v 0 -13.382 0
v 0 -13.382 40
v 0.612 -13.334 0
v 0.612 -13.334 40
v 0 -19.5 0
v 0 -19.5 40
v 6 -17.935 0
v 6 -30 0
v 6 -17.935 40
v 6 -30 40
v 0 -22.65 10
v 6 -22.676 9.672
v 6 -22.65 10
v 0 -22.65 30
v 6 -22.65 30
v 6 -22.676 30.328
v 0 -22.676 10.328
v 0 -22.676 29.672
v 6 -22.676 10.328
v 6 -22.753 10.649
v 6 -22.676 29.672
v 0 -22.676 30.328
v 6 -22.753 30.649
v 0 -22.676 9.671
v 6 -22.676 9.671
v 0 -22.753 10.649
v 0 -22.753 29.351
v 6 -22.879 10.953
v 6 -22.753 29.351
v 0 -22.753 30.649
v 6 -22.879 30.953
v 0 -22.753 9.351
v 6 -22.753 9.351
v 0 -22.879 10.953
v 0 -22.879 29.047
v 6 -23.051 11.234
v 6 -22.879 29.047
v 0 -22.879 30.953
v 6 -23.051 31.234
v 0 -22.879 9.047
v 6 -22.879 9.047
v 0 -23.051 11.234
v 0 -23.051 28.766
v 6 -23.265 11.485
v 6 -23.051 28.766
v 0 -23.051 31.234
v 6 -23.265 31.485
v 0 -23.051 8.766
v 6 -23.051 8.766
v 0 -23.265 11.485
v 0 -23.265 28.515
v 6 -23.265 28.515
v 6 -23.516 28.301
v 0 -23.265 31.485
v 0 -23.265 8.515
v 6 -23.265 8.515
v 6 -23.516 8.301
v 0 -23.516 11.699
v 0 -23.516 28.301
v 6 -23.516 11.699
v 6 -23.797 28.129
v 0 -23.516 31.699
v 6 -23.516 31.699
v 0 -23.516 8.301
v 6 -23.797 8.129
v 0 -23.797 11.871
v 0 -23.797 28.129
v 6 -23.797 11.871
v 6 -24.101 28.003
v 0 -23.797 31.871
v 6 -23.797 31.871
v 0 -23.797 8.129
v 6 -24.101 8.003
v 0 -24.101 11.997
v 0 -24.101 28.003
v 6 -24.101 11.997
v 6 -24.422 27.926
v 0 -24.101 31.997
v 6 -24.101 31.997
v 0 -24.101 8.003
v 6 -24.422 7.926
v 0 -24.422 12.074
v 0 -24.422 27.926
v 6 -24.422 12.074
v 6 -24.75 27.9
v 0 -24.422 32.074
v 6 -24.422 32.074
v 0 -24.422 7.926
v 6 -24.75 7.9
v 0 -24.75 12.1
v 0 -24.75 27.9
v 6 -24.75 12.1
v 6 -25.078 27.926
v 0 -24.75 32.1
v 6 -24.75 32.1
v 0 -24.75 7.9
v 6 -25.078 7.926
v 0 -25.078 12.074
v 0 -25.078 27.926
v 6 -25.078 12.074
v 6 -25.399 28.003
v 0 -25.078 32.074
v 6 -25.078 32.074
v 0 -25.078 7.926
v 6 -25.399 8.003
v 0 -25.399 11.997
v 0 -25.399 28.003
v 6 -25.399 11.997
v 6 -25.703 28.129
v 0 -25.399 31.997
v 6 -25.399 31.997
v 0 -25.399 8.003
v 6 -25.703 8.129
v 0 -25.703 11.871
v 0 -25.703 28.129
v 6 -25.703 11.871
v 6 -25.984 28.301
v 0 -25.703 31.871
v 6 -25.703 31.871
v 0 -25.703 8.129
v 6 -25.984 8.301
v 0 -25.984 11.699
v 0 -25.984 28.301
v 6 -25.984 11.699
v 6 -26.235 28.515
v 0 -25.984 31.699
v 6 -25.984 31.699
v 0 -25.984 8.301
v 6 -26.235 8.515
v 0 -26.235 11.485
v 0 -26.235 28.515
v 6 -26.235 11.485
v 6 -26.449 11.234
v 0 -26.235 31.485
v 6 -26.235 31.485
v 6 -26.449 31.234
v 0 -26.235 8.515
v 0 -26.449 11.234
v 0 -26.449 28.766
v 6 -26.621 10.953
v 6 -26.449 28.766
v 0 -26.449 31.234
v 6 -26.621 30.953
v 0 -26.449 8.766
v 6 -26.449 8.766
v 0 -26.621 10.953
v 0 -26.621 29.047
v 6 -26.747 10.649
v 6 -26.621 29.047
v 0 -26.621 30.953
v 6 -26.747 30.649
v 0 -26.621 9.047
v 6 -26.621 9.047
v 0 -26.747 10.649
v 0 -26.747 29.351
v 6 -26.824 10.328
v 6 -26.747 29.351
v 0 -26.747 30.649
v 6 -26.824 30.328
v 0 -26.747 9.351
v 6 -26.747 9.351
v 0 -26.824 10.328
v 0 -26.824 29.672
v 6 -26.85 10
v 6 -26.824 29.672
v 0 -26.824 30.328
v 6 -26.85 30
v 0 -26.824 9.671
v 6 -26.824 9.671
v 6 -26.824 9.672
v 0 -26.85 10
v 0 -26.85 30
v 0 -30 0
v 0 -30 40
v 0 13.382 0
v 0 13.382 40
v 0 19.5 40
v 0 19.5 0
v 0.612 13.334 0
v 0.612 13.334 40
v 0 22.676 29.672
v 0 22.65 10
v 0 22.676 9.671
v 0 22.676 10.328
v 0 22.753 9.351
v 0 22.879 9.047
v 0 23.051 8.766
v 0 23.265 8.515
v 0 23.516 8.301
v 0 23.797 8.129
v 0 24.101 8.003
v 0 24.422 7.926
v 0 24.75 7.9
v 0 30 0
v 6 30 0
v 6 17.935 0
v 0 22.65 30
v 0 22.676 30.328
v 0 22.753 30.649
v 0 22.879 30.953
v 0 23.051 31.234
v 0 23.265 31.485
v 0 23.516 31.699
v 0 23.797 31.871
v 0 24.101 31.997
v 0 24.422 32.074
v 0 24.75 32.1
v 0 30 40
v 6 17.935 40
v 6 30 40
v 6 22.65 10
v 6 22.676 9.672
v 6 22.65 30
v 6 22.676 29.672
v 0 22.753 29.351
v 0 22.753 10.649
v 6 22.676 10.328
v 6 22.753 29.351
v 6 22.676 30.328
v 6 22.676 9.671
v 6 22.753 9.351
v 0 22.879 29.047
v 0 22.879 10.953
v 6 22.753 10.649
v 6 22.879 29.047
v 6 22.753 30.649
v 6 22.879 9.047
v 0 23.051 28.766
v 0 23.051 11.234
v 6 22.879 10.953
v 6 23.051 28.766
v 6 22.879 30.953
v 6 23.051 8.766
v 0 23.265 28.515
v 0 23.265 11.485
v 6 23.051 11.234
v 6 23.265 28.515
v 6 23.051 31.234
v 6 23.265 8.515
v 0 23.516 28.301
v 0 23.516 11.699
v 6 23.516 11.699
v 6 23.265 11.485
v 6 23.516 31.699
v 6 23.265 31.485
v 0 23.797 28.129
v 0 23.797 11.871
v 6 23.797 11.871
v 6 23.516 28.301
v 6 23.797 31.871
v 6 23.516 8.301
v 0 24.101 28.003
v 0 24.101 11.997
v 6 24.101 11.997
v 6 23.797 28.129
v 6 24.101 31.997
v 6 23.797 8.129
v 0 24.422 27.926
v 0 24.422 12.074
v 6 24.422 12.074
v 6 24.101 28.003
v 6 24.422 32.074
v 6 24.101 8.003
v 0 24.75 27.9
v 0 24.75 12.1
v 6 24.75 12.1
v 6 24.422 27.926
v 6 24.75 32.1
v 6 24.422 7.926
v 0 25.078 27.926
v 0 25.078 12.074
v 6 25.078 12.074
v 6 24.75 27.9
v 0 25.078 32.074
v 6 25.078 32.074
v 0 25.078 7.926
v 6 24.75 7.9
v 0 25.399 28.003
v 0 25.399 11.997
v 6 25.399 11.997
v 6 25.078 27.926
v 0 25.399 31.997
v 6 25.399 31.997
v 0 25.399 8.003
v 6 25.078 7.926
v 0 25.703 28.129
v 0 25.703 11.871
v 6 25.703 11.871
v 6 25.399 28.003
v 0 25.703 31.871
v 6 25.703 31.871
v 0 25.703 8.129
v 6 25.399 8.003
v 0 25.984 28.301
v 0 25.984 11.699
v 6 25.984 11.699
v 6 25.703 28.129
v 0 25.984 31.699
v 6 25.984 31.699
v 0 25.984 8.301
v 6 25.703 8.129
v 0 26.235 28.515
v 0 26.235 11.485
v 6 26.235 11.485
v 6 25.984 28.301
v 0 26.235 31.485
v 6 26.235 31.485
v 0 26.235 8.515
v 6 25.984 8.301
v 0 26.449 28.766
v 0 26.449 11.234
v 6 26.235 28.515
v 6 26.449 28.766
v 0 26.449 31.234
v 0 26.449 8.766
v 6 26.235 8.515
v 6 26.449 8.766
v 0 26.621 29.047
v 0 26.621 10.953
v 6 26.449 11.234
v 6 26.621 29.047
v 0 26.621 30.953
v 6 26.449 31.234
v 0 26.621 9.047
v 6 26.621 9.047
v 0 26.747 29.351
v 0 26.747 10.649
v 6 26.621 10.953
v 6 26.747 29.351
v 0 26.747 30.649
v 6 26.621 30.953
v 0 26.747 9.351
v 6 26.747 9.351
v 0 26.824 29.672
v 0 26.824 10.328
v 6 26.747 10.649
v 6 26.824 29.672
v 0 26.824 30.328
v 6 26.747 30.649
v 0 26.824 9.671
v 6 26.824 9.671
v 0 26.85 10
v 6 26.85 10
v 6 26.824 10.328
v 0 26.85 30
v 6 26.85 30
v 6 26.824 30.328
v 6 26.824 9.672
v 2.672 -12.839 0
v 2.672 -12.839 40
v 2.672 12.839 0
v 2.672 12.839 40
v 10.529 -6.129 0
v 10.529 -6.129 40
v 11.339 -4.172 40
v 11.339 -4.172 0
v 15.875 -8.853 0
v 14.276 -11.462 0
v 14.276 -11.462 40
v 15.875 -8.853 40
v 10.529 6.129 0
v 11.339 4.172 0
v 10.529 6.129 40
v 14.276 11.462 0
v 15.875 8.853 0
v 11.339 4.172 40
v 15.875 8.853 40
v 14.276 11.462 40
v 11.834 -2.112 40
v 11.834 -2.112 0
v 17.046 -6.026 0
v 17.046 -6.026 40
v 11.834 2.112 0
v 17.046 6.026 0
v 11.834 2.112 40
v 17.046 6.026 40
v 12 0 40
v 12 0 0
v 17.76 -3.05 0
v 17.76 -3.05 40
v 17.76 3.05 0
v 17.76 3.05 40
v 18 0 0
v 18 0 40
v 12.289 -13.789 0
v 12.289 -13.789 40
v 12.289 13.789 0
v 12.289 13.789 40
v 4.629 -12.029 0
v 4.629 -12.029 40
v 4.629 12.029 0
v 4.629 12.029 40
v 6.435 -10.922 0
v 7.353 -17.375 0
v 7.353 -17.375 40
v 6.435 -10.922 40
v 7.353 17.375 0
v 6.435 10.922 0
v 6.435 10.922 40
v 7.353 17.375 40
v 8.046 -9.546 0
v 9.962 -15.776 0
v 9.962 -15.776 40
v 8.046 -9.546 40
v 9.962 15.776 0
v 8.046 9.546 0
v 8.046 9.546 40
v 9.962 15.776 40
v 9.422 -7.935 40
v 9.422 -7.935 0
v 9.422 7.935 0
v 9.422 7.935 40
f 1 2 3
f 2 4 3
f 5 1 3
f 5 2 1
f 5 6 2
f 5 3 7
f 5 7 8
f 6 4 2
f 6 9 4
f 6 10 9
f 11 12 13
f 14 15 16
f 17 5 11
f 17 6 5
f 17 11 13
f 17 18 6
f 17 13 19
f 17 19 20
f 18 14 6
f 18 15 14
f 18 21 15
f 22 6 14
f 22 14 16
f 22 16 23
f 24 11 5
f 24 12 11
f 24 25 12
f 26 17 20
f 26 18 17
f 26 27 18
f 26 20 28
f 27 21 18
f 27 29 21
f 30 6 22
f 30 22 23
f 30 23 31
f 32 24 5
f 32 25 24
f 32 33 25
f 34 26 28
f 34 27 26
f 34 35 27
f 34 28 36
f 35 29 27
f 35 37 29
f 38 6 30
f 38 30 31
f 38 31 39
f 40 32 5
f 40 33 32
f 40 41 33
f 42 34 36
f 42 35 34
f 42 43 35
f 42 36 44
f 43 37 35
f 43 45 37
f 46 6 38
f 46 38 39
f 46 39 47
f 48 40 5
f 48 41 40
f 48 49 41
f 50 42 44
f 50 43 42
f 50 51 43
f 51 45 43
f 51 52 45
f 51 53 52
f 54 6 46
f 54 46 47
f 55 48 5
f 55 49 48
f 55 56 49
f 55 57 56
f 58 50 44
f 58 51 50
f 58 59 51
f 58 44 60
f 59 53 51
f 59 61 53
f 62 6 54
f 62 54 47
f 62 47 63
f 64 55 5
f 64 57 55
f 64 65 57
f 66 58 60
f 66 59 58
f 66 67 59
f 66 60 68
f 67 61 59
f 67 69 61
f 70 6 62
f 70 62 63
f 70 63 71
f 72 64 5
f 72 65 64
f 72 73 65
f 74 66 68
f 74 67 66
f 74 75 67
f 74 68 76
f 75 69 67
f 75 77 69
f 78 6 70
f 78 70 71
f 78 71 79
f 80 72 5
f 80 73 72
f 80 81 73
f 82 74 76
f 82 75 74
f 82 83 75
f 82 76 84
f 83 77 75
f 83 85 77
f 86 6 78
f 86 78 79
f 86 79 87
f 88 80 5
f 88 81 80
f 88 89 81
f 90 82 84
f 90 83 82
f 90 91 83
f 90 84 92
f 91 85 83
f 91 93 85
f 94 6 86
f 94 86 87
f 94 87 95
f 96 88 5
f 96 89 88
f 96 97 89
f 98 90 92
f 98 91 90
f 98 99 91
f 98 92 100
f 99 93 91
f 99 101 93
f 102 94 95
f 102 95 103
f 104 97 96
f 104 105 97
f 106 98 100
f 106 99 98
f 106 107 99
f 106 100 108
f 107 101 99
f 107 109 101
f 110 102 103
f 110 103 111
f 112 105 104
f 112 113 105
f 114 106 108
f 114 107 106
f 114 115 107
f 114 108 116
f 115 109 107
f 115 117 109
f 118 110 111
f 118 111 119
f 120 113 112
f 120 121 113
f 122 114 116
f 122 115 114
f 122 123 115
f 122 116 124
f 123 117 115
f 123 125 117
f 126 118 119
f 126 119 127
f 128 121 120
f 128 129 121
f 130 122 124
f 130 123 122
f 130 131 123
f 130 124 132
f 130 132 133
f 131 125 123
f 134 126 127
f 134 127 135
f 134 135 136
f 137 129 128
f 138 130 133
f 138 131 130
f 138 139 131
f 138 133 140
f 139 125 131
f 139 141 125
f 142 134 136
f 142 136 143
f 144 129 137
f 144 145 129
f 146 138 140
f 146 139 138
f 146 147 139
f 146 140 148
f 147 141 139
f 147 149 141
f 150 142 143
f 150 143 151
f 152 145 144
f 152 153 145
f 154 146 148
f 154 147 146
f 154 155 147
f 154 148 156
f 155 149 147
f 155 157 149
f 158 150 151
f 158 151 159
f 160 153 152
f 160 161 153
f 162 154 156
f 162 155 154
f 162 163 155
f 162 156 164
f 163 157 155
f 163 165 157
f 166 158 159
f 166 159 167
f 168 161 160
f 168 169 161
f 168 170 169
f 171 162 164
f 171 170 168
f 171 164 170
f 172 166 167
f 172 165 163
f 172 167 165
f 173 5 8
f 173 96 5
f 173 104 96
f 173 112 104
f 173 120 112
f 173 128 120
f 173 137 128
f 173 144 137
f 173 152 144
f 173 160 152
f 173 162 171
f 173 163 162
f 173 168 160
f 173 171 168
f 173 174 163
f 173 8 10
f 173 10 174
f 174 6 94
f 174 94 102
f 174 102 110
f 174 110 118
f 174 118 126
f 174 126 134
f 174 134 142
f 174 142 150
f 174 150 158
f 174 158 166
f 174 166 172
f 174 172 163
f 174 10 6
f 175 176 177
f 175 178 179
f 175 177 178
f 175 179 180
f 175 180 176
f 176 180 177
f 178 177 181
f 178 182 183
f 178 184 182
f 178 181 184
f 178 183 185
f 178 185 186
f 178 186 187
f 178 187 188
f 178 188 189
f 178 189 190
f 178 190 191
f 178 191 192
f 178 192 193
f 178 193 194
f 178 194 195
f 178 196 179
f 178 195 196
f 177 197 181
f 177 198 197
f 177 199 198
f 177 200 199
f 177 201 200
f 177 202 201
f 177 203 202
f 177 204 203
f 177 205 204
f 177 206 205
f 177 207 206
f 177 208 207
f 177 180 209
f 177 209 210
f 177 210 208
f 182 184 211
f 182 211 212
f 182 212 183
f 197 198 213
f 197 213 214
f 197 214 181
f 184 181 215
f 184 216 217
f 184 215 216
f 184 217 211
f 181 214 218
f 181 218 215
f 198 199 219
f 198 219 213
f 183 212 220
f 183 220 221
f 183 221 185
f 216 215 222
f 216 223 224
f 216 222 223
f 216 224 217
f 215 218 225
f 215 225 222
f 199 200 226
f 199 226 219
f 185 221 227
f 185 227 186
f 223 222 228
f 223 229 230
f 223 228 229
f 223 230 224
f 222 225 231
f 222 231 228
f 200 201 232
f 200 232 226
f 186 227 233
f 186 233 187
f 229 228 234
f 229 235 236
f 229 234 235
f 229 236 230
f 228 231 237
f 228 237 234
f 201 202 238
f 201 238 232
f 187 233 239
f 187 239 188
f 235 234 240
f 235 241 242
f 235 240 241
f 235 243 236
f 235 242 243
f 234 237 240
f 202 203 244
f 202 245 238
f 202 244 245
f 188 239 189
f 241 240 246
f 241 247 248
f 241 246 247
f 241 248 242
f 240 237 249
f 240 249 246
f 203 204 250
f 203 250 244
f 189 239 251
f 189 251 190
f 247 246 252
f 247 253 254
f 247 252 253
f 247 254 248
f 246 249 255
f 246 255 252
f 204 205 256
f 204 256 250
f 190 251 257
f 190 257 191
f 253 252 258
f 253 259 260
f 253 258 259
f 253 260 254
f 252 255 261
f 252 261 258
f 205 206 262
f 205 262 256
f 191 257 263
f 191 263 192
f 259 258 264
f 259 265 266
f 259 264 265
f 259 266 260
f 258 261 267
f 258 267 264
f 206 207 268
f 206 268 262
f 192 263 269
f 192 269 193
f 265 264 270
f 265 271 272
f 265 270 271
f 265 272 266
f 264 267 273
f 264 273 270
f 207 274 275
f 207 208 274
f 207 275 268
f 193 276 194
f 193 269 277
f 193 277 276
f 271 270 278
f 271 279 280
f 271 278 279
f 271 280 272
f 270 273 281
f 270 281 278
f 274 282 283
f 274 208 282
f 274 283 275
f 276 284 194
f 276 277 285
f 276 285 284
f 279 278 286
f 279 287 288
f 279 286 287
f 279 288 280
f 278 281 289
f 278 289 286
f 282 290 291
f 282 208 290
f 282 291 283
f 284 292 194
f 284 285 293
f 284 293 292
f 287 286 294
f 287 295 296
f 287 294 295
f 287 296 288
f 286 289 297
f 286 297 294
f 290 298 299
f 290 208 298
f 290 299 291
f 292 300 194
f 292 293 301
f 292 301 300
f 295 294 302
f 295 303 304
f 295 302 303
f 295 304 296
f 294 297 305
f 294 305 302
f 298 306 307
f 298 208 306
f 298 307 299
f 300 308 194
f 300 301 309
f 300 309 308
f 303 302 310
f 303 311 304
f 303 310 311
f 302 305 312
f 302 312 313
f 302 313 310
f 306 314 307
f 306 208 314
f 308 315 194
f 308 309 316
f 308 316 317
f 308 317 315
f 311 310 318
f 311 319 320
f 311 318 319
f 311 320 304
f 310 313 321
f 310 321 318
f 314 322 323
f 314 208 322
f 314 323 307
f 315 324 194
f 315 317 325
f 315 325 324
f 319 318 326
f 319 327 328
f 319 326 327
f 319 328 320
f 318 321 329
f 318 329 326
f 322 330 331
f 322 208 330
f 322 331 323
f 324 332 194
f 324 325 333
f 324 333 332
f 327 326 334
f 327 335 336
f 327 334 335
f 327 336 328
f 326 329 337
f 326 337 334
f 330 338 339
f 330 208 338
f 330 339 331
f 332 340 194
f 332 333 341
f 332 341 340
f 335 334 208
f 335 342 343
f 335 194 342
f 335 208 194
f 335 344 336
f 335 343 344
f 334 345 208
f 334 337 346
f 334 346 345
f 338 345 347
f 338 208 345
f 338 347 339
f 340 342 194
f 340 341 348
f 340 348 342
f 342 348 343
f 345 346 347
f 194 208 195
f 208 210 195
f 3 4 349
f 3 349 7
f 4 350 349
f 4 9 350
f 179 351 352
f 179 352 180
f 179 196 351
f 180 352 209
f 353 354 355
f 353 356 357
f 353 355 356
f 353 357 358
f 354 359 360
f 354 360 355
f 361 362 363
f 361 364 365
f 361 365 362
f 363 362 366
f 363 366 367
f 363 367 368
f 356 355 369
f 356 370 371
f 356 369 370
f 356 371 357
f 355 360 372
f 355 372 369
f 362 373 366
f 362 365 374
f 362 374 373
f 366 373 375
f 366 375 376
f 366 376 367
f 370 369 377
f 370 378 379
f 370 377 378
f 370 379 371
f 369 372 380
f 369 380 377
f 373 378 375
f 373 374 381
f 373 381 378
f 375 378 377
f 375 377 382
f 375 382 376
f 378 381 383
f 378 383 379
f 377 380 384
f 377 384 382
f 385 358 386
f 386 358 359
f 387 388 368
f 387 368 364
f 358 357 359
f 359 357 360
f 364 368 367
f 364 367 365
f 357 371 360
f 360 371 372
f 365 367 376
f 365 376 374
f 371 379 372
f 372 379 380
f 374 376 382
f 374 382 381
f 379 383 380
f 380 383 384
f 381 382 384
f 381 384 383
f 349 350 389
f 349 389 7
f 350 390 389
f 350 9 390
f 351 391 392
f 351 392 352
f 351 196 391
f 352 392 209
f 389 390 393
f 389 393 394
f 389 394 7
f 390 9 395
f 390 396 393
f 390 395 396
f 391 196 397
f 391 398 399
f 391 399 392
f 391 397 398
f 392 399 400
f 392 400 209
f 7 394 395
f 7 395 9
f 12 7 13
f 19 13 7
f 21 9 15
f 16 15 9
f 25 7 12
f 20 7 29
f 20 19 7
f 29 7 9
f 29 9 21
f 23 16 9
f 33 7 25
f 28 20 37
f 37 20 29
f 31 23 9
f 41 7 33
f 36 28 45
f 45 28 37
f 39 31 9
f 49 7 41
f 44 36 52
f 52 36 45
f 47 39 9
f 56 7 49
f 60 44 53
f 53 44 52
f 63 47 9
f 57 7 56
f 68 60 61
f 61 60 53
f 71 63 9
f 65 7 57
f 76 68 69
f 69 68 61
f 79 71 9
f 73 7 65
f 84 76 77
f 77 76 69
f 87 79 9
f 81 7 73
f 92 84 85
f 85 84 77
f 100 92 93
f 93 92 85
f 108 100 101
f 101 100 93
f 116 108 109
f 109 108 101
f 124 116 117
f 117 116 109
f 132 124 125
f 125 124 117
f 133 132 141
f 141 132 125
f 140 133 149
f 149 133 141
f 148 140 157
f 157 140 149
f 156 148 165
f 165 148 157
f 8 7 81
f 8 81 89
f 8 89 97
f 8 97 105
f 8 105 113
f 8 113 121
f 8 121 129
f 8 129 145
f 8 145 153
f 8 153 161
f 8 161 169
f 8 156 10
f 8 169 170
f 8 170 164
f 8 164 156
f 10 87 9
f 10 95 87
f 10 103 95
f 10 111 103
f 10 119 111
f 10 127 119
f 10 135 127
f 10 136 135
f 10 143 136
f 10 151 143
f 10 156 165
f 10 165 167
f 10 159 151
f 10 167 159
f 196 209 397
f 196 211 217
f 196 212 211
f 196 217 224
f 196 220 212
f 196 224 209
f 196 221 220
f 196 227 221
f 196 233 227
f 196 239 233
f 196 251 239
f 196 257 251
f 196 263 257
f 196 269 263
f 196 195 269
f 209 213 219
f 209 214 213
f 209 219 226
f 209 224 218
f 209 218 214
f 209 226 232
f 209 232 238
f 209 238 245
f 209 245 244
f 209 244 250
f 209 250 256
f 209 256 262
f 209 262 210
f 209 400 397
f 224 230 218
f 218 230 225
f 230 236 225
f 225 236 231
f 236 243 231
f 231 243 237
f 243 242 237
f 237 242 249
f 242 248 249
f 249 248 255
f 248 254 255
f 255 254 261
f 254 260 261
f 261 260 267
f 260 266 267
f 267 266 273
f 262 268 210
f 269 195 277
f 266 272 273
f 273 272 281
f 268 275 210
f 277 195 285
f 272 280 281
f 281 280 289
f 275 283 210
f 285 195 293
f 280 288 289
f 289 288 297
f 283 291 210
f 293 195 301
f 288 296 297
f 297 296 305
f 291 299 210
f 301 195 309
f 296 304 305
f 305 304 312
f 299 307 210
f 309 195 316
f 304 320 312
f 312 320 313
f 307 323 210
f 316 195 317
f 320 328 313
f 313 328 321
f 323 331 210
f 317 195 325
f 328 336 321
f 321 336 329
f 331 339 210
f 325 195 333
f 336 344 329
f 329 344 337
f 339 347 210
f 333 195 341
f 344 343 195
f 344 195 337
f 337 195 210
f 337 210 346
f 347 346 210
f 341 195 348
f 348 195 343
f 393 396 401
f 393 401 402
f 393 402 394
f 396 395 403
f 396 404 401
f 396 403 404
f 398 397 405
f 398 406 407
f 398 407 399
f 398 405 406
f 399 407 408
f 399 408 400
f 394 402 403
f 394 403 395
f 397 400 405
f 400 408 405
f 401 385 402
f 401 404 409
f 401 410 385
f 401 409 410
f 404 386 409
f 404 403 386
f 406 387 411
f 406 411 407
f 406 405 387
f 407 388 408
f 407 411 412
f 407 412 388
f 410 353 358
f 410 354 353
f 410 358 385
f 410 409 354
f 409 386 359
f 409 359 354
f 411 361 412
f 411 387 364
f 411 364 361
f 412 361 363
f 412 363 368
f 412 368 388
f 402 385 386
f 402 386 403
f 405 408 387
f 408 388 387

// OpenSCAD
// file: ../src/WINDGAUGE02A_D02.scad
$fn=40; // model faces resolution.
include <../configuration.scad>


//Drzak na sloup - cast bez drzaku anemometru
module WINDGAUGE02A_D02(){
	
difference()
    {
    union()
        {
        //základní válec
        cylinder(h=D02_vyska_uchytky,r=(D02_prumer_obruby+2*D02_sila_materialu)/2,center=true);
		//úchytové plošky		
        translate([D02_dotahova_vzdalenost+D02_sila_materialu/2,0,0]){cube([D02_sila_materialu,D02_delka_celeho_uchytu,D02_vyska_uchytky],center=true);}
		}
    
    //válec na odečet
    cylinder(h=D02_vyska_uchytky+0.01,r=D02_prumer_obruby/2,center=true);     
	        
    //kvádr na odecet
	translate([D02_dotahova_vzdalenost-(D02_prumer_obruby+2*D02_sila_materialu)/2,0,0]){cube([D02_prumer_obruby+2*D02_sila_materialu,D02_prumer_obruby+2*D02_sila_materialu,D02_vyska_uchytky+0.01],center=true);}
		
	//otvory na sroub
	translate([D02_dotahova_vzdalenost,(D02_delka_celeho_uchytu/2-D02_prumer_obruby/2-D02_sila_materialu)/2+D02_prumer_obruby/2+D02_sila_materialu,D02_vyska_uchytky/4]){rotate([0,90,0]){cylinder(h=D02_sila_materialu+0.01,r=D02_prumer_uchytneho_sroubu/2);}}
    
     //drzak matky
    translate([D02_dotahova_vzdalenost+D02_sila_materialu-D02_vyska_matky,(D02_delka_celeho_uchytu/2-D02_prumer_obruby/2-D02_sila_materialu)/2+D02_prumer_obruby/2+D02_sila_materialu,D02_vyska_uchytky/4]){rotate([0,90,0]){ cylinder (h = D02_vyska_matky+0.01, r= (D02_sirka_matky+0.2)/2, $fn=6);}}
   
     
        
    translate([D02_dotahova_vzdalenost,(D02_delka_celeho_uchytu/2-D02_prumer_obruby/2-D02_sila_materialu)/2+D02_prumer_obruby/2+D02_sila_materialu,-D02_vyska_uchytky/4]){rotate([0,90,0]){cylinder(h=D02_sila_materialu+0.01,r=D02_prumer_uchytneho_sroubu/2);}}
    
     //drzak matky
    translate([D02_dotahova_vzdalenost+D02_sila_materialu-D02_vyska_matky,(D02_delka_celeho_uchytu/2-D02_prumer_obruby/2-D02_sila_materialu)/2+D02_prumer_obruby/2+D02_sila_materialu,-D02_vyska_uchytky/4]){rotate([0,90,0]){ cylinder (h = D02_vyska_matky+0.01, r= (D02_sirka_matky+0.2)/2, $fn=6);}}
        
	translate([D02_dotahova_vzdalenost,-((D02_delka_celeho_uchytu/2-D02_prumer_obruby/2-D02_sila_materialu)/2+D02_prumer_obruby/2+D02_sila_materialu),-D02_vyska_uchytky/4]){rotate([0,90,0]){cylinder(h=D02_sila_materialu+0.01,r=D02_prumer_uchytneho_sroubu/2);}}
    
     //drzak matky
    translate([D02_dotahova_vzdalenost+D02_sila_materialu-D02_vyska_matky,-((D02_delka_celeho_uchytu/2-D02_prumer_obruby/2-D02_sila_materialu)/2+D02_prumer_obruby/2+D02_sila_materialu),-D02_vyska_uchytky/4]){rotate([0,90,0]){ cylinder (h = D02_vyska_matky+0.01, r= (D02_sirka_matky+0.2)/2, $fn=6);}}

    translate([D02_dotahova_vzdalenost,-((D02_delka_celeho_uchytu/2-D02_prumer_obruby/2-D02_sila_materialu)/2+D02_prumer_obruby/2+D02_sila_materialu),D02_vyska_uchytky/4]){rotate([0,90,0]){cylinder(h=D02_sila_materialu+0.01,r=D02_prumer_uchytneho_sroubu/2);}}	
    
     //drzak matky
    translate([D02_dotahova_vzdalenost+D02_sila_materialu-D02_vyska_matky,-((D02_delka_celeho_uchytu/2-D02_prumer_obruby/2-D02_sila_materialu)/2+D02_prumer_obruby/2+D02_sila_materialu),D02_vyska_uchytky/4]){rotate([0,90,0]){ cylinder (h = D02_vyska_matky+0.01, r= (D02_sirka_matky+0.2)/2, $fn=6);}}
	
    }
}

module WINDGAUGE02A_D02_2(){
	
difference()
    {
    union()
        {
        //základní válec
        cylinder(h=D02_vyska_uchytky,r=(D02_prumer_obruby+2*D02_sila_materialu)/2,center=true);
		//úchytové plošky		
        translate([D02_dotahova_vzdalenost+D02_sila_materialu/2,0,0]){cube([D02_sila_materialu,D02_delka_celeho_uchytu,D02_vyska_uchytky],center=true);}
		}
    
    //válec na odečet
    cylinder(h=D02_vyska_uchytky+0.01,r=D02_prumer_obruby/2,center=true);     
	        
    //kvádr na odecet
	translate([D02_dotahova_vzdalenost-(D02_prumer_obruby+2*D02_sila_materialu)/2,0,0]){cube([D02_prumer_obruby+2*D02_sila_materialu,D02_prumer_obruby+2*D02_sila_materialu,D02_vyska_uchytky+0.01],center=true);}
		
	//otvory na sroub
	translate([D02_dotahova_vzdalenost,(D02_delka_celeho_uchytu/2-D02_prumer_obruby/2-D02_sila_materialu)/2+D02_prumer_obruby/2+D02_sila_materialu,D02_vyska_uchytky/4]){rotate([0,90,0]){cylinder(h=D02_sila_materialu+0.01,r=D02_prumer_uchytneho_sroubu/2);}}
    
    
   
     
        
    translate([D02_dotahova_vzdalenost,(D02_delka_celeho_uchytu/2-D02_prumer_obruby/2-D02_sila_materialu)/2+D02_prumer_obruby/2+D02_sila_materialu,-D02_vyska_uchytky/4]){rotate([0,90,0]){cylinder(h=D02_sila_materialu+0.01,r=D02_prumer_uchytneho_sroubu/2);}}
    
     
        
	translate([D02_dotahova_vzdalenost,-((D02_delka_celeho_uchytu/2-D02_prumer_obruby/2-D02_sila_materialu)/2+D02_prumer_obruby/2+D02_sila_materialu),-D02_vyska_uchytky/4]){rotate([0,90,0]){cylinder(h=D02_sila_materialu+0.01,r=D02_prumer_uchytneho_sroubu/2);}}
    
    

    translate([D02_dotahova_vzdalenost,-((D02_delka_celeho_uchytu/2-D02_prumer_obruby/2-D02_sila_materialu)/2+D02_prumer_obruby/2+D02_sila_materialu),D02_vyska_uchytky/4]){rotate([0,90,0]){cylinder(h=D02_sila_materialu+0.01,r=D02_prumer_uchytneho_sroubu/2);}}	
    
    
	
    }
}


//WINDGAUGE02A_D02();
// file: ../configuration.scad
$fn=40; // model faces resolution.

//OBECNE PARAMETRY 
//----------------------------------------------------------------
//----------------------------------------------------------------
//WINDGAUGE02A_S02 - Parametry pro hlavni valec anemometru
S01_hloubka_zavitu=4;
S01_vyska=80;
S01_prumer_vnitrni=40;
S01_sila_materialu=1.3;
S01_vyska_horni_zavit=10;
S01_vyska_spodniho_zavitu=10;
S01_sila_drzaku_RJ11=3; //vyška drážky
S01_hrana_A_RJ11=12.3;
S01_hrana_B_RJ11=19;
S01_tolerance_zavit=1.5;

//Obecné parametry
prumer_osicky=5;
sterbina_na_osicku=0.5; //aby nepraskal a držel držák rotoru na hřídelce

//Rozmery modulu se senzorem
senzor_delka=20.32;
senzor_sirka=10.16;
senzor_vyska_IO=2;
senzor_odstup_od_magnetu=2;

//Parametry loziska
lozisko_prumer_vnitrni=4.9;
lozisko_prumer_vnejsi=16.1;
lozisko_vyska=5;
lozisko_prekryv=1.5;

//Parametry magnetu
magnet_prumer=6.3;
magnet_vyska=5;
magnet_zapusteni=4;
magnet_tolerance_prumeru=0.2;

R03_vyska_narezeni_hridelky=5;

//Parametry sroubu
prumer_sroubu=3.4;
prumer_hlavy_sroubu=6;
vyska_hlavy_sroubu=4;
vyska_matky=3;
sirka_matky=6.7;

sirka_matky_tol=0.175;
prumer_orechu=10;

//WINDGAUGE02A_R01 //pro lopatku
L01_hrana_drzaku_a=10;
L01_hrana_drzaku_b=3;
L01_delka_uchytu=20;
L01_prumer_lopatky=40;
L01_sila_materialu_lopatky=1.2;

//WINDGAUGE02A_D01 //uchyt velky
D01_material_pod_zavitem=5;
D01_material_za_zavitem=3;
D01_material_pred_zavitem=2;
D01_delka_tyce=60;
D01_sirka_tyce=10;

//WINDGAUGE02A_D02 //uchyt na sloup
D02_sila_materialu=6;
D02_vyska_uchytky=40;
D02_prumer_obruby=27; 

//27mm - 3/4 trubka
D02_delka_celeho_uchytu=60;
D02_dotahova_vzdalenost=1.5;
D02_prumer_uchytneho_sroubu=4.2;
D02_sirka_matky=9.1; //pro M4
D02_vyska_matky=3;

//WINDGAUGE02A_R01 //rotor s prekritim statoru
R01_vyska_preryti_statoru=10;
R01_sila_materialu_pro_prekriti=1.3;
R01_mezera_mezi_statorem_rotorem=3;

//WINDGAUGE02A_R03 //drzak magnetu
R05_sirka_matky=10;
// main file
$fn=100; // model faces resolution.
include <../configuration.scad>
use <../src/WINDGAUGE02A_D02.scad>

rotate([0, 0, 0])
    translate([-D02_dotahova_vzdalenost,0,D02_vyska_uchytky/2])
        WINDGAUGE02A_D02_2();

            
